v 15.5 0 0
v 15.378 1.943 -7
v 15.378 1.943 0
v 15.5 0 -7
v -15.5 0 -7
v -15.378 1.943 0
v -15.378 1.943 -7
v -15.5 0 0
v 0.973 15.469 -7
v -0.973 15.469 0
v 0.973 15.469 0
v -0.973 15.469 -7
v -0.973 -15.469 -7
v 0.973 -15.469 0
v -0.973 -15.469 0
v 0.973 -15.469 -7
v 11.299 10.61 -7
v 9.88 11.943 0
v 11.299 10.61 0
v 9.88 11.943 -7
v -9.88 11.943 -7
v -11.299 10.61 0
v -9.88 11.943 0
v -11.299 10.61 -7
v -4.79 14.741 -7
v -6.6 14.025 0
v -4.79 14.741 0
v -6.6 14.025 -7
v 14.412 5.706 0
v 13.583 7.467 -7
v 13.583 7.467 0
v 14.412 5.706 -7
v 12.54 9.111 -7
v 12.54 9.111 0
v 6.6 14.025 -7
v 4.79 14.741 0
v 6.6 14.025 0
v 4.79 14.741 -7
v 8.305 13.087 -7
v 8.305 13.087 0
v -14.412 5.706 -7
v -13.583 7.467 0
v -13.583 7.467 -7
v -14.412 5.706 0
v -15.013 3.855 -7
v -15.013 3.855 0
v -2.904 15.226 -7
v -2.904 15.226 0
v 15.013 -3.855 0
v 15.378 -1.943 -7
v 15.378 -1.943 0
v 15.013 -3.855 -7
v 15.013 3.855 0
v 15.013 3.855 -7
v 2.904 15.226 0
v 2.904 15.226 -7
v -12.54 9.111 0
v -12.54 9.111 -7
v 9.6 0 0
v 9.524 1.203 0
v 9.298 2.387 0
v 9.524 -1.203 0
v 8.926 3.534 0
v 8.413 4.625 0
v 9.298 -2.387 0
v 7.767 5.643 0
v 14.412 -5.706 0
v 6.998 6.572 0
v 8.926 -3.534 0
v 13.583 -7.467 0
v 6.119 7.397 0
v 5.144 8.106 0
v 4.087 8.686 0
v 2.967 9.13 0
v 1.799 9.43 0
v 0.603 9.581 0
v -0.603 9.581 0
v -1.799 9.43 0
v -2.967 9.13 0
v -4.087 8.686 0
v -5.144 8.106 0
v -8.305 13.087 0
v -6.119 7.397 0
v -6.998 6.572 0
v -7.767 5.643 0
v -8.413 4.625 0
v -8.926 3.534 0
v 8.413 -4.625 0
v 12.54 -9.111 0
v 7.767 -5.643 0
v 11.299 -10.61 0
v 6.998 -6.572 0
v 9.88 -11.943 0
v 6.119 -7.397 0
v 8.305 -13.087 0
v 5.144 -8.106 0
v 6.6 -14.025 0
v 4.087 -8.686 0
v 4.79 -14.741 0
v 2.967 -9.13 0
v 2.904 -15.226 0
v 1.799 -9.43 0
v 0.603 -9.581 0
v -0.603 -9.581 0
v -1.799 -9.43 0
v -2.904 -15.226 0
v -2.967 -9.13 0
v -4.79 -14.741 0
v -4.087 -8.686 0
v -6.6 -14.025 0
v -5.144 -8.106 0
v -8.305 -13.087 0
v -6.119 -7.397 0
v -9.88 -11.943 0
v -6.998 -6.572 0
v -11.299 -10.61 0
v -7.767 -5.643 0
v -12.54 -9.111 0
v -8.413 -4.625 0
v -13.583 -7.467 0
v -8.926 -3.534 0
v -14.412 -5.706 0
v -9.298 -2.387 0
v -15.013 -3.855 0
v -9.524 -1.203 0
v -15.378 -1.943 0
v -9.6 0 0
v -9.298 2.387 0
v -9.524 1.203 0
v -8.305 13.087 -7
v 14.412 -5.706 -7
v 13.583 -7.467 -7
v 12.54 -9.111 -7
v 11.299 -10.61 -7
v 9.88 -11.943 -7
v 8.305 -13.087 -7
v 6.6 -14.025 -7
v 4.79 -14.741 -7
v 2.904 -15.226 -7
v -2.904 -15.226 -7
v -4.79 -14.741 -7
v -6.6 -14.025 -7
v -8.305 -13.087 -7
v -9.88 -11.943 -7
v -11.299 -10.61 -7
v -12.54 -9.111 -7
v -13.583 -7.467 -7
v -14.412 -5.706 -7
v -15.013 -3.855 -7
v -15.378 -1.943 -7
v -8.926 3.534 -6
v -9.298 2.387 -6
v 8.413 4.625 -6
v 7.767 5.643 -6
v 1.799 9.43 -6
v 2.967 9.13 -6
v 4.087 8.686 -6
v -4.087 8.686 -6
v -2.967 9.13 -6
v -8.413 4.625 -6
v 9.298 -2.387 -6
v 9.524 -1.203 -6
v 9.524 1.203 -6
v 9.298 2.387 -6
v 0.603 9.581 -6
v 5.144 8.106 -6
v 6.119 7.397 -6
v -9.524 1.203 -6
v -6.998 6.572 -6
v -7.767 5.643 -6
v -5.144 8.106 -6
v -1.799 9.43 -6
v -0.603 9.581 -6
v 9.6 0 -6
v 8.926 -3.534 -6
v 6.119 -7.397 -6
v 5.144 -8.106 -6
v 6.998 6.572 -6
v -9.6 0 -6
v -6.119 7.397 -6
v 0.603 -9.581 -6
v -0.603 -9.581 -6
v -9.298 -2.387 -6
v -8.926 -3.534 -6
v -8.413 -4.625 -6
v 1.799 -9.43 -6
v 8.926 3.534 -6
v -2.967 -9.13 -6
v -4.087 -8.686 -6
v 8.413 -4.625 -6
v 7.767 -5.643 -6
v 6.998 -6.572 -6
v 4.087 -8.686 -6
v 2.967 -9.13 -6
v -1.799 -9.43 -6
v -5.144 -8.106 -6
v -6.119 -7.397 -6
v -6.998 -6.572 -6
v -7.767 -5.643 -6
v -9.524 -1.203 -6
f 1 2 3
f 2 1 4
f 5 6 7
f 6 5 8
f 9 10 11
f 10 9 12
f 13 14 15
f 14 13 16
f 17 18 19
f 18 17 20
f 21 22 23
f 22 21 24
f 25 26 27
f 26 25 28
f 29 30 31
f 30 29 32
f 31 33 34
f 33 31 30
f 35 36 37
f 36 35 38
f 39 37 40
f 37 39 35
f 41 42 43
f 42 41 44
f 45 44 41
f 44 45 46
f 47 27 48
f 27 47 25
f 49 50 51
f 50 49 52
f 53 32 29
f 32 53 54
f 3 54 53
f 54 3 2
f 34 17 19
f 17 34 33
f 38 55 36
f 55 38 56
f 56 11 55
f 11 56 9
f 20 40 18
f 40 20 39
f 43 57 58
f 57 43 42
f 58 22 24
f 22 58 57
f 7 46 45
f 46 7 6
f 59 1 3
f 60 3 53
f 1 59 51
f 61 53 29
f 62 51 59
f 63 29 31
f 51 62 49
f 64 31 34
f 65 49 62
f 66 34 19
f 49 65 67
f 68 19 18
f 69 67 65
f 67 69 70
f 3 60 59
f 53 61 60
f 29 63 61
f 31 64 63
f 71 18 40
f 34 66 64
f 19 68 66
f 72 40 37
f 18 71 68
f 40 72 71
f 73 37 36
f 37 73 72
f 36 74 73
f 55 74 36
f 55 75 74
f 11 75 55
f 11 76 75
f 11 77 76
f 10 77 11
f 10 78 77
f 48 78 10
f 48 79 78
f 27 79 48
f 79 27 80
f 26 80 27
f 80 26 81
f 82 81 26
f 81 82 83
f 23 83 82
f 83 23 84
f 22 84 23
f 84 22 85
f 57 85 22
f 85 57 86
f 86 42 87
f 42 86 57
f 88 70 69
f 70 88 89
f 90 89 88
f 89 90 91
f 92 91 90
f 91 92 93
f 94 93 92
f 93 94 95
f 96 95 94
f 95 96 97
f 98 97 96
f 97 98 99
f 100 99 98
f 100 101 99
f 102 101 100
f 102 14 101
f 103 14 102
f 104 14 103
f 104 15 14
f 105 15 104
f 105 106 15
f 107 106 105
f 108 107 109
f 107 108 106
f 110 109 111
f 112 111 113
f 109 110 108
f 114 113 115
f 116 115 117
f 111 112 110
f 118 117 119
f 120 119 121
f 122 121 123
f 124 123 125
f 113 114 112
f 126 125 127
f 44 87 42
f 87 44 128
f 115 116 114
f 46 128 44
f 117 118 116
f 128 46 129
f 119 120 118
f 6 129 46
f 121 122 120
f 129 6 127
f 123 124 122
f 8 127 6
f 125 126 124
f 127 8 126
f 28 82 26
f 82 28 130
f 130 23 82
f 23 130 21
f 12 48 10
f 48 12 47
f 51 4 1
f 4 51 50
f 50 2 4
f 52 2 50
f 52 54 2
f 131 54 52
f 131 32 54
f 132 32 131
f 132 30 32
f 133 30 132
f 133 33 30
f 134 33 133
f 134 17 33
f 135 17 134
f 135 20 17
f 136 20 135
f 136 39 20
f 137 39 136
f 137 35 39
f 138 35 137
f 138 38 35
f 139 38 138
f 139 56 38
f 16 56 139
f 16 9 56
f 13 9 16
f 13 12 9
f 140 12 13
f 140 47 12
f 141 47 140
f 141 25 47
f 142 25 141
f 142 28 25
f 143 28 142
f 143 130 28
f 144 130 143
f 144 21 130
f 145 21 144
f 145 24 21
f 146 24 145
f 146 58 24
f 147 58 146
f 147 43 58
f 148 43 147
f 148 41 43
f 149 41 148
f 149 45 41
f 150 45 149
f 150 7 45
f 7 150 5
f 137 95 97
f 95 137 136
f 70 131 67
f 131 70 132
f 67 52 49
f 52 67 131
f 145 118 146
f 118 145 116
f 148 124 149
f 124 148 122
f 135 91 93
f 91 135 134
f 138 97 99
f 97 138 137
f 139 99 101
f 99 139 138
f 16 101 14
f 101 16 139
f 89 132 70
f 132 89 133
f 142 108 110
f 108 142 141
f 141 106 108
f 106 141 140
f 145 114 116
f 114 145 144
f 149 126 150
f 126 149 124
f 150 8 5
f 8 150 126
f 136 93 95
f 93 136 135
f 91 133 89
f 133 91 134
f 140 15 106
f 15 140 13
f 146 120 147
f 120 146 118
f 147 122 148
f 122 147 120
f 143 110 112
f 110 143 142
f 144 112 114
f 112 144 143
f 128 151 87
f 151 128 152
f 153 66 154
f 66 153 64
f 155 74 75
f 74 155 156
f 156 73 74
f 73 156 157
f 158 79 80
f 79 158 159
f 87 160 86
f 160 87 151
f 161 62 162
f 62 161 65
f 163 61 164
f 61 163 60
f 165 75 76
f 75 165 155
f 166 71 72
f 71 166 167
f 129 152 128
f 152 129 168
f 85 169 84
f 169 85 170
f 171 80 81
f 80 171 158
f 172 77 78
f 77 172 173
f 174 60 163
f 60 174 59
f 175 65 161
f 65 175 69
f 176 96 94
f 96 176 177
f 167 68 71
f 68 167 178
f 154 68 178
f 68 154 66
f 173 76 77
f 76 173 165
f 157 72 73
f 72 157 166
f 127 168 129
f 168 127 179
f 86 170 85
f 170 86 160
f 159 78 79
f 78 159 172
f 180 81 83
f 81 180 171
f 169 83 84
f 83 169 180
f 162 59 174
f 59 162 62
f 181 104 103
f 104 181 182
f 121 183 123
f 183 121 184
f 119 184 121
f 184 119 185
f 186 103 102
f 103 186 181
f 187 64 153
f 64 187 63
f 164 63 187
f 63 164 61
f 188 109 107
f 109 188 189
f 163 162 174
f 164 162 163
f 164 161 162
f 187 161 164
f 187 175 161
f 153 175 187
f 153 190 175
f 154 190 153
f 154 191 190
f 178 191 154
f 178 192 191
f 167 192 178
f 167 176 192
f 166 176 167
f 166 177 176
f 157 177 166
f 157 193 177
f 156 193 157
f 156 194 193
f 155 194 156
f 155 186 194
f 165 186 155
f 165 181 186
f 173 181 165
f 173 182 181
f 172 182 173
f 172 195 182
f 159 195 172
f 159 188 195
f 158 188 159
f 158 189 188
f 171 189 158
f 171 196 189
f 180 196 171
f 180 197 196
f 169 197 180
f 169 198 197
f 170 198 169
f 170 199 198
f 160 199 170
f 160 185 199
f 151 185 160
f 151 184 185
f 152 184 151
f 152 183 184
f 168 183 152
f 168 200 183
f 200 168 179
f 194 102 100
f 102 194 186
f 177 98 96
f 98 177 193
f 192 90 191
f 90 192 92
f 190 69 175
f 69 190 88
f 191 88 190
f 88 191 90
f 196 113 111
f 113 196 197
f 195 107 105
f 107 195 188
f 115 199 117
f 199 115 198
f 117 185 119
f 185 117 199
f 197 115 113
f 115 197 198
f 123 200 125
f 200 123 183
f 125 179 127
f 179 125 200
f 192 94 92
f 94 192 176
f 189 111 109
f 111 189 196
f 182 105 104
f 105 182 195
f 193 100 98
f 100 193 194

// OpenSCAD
$fn = 50;


difference() {
	union() {
		translate(v = [0, 0, -7.0000000000]) {
			cylinder(h = 7, r = 15.5000000000);
		}
	}
	union() {
		#translate(v = [0, 0, -6.0000000000]) {
			cylinder(h = 6, r = 9.6000000000);
		}
	}
}
